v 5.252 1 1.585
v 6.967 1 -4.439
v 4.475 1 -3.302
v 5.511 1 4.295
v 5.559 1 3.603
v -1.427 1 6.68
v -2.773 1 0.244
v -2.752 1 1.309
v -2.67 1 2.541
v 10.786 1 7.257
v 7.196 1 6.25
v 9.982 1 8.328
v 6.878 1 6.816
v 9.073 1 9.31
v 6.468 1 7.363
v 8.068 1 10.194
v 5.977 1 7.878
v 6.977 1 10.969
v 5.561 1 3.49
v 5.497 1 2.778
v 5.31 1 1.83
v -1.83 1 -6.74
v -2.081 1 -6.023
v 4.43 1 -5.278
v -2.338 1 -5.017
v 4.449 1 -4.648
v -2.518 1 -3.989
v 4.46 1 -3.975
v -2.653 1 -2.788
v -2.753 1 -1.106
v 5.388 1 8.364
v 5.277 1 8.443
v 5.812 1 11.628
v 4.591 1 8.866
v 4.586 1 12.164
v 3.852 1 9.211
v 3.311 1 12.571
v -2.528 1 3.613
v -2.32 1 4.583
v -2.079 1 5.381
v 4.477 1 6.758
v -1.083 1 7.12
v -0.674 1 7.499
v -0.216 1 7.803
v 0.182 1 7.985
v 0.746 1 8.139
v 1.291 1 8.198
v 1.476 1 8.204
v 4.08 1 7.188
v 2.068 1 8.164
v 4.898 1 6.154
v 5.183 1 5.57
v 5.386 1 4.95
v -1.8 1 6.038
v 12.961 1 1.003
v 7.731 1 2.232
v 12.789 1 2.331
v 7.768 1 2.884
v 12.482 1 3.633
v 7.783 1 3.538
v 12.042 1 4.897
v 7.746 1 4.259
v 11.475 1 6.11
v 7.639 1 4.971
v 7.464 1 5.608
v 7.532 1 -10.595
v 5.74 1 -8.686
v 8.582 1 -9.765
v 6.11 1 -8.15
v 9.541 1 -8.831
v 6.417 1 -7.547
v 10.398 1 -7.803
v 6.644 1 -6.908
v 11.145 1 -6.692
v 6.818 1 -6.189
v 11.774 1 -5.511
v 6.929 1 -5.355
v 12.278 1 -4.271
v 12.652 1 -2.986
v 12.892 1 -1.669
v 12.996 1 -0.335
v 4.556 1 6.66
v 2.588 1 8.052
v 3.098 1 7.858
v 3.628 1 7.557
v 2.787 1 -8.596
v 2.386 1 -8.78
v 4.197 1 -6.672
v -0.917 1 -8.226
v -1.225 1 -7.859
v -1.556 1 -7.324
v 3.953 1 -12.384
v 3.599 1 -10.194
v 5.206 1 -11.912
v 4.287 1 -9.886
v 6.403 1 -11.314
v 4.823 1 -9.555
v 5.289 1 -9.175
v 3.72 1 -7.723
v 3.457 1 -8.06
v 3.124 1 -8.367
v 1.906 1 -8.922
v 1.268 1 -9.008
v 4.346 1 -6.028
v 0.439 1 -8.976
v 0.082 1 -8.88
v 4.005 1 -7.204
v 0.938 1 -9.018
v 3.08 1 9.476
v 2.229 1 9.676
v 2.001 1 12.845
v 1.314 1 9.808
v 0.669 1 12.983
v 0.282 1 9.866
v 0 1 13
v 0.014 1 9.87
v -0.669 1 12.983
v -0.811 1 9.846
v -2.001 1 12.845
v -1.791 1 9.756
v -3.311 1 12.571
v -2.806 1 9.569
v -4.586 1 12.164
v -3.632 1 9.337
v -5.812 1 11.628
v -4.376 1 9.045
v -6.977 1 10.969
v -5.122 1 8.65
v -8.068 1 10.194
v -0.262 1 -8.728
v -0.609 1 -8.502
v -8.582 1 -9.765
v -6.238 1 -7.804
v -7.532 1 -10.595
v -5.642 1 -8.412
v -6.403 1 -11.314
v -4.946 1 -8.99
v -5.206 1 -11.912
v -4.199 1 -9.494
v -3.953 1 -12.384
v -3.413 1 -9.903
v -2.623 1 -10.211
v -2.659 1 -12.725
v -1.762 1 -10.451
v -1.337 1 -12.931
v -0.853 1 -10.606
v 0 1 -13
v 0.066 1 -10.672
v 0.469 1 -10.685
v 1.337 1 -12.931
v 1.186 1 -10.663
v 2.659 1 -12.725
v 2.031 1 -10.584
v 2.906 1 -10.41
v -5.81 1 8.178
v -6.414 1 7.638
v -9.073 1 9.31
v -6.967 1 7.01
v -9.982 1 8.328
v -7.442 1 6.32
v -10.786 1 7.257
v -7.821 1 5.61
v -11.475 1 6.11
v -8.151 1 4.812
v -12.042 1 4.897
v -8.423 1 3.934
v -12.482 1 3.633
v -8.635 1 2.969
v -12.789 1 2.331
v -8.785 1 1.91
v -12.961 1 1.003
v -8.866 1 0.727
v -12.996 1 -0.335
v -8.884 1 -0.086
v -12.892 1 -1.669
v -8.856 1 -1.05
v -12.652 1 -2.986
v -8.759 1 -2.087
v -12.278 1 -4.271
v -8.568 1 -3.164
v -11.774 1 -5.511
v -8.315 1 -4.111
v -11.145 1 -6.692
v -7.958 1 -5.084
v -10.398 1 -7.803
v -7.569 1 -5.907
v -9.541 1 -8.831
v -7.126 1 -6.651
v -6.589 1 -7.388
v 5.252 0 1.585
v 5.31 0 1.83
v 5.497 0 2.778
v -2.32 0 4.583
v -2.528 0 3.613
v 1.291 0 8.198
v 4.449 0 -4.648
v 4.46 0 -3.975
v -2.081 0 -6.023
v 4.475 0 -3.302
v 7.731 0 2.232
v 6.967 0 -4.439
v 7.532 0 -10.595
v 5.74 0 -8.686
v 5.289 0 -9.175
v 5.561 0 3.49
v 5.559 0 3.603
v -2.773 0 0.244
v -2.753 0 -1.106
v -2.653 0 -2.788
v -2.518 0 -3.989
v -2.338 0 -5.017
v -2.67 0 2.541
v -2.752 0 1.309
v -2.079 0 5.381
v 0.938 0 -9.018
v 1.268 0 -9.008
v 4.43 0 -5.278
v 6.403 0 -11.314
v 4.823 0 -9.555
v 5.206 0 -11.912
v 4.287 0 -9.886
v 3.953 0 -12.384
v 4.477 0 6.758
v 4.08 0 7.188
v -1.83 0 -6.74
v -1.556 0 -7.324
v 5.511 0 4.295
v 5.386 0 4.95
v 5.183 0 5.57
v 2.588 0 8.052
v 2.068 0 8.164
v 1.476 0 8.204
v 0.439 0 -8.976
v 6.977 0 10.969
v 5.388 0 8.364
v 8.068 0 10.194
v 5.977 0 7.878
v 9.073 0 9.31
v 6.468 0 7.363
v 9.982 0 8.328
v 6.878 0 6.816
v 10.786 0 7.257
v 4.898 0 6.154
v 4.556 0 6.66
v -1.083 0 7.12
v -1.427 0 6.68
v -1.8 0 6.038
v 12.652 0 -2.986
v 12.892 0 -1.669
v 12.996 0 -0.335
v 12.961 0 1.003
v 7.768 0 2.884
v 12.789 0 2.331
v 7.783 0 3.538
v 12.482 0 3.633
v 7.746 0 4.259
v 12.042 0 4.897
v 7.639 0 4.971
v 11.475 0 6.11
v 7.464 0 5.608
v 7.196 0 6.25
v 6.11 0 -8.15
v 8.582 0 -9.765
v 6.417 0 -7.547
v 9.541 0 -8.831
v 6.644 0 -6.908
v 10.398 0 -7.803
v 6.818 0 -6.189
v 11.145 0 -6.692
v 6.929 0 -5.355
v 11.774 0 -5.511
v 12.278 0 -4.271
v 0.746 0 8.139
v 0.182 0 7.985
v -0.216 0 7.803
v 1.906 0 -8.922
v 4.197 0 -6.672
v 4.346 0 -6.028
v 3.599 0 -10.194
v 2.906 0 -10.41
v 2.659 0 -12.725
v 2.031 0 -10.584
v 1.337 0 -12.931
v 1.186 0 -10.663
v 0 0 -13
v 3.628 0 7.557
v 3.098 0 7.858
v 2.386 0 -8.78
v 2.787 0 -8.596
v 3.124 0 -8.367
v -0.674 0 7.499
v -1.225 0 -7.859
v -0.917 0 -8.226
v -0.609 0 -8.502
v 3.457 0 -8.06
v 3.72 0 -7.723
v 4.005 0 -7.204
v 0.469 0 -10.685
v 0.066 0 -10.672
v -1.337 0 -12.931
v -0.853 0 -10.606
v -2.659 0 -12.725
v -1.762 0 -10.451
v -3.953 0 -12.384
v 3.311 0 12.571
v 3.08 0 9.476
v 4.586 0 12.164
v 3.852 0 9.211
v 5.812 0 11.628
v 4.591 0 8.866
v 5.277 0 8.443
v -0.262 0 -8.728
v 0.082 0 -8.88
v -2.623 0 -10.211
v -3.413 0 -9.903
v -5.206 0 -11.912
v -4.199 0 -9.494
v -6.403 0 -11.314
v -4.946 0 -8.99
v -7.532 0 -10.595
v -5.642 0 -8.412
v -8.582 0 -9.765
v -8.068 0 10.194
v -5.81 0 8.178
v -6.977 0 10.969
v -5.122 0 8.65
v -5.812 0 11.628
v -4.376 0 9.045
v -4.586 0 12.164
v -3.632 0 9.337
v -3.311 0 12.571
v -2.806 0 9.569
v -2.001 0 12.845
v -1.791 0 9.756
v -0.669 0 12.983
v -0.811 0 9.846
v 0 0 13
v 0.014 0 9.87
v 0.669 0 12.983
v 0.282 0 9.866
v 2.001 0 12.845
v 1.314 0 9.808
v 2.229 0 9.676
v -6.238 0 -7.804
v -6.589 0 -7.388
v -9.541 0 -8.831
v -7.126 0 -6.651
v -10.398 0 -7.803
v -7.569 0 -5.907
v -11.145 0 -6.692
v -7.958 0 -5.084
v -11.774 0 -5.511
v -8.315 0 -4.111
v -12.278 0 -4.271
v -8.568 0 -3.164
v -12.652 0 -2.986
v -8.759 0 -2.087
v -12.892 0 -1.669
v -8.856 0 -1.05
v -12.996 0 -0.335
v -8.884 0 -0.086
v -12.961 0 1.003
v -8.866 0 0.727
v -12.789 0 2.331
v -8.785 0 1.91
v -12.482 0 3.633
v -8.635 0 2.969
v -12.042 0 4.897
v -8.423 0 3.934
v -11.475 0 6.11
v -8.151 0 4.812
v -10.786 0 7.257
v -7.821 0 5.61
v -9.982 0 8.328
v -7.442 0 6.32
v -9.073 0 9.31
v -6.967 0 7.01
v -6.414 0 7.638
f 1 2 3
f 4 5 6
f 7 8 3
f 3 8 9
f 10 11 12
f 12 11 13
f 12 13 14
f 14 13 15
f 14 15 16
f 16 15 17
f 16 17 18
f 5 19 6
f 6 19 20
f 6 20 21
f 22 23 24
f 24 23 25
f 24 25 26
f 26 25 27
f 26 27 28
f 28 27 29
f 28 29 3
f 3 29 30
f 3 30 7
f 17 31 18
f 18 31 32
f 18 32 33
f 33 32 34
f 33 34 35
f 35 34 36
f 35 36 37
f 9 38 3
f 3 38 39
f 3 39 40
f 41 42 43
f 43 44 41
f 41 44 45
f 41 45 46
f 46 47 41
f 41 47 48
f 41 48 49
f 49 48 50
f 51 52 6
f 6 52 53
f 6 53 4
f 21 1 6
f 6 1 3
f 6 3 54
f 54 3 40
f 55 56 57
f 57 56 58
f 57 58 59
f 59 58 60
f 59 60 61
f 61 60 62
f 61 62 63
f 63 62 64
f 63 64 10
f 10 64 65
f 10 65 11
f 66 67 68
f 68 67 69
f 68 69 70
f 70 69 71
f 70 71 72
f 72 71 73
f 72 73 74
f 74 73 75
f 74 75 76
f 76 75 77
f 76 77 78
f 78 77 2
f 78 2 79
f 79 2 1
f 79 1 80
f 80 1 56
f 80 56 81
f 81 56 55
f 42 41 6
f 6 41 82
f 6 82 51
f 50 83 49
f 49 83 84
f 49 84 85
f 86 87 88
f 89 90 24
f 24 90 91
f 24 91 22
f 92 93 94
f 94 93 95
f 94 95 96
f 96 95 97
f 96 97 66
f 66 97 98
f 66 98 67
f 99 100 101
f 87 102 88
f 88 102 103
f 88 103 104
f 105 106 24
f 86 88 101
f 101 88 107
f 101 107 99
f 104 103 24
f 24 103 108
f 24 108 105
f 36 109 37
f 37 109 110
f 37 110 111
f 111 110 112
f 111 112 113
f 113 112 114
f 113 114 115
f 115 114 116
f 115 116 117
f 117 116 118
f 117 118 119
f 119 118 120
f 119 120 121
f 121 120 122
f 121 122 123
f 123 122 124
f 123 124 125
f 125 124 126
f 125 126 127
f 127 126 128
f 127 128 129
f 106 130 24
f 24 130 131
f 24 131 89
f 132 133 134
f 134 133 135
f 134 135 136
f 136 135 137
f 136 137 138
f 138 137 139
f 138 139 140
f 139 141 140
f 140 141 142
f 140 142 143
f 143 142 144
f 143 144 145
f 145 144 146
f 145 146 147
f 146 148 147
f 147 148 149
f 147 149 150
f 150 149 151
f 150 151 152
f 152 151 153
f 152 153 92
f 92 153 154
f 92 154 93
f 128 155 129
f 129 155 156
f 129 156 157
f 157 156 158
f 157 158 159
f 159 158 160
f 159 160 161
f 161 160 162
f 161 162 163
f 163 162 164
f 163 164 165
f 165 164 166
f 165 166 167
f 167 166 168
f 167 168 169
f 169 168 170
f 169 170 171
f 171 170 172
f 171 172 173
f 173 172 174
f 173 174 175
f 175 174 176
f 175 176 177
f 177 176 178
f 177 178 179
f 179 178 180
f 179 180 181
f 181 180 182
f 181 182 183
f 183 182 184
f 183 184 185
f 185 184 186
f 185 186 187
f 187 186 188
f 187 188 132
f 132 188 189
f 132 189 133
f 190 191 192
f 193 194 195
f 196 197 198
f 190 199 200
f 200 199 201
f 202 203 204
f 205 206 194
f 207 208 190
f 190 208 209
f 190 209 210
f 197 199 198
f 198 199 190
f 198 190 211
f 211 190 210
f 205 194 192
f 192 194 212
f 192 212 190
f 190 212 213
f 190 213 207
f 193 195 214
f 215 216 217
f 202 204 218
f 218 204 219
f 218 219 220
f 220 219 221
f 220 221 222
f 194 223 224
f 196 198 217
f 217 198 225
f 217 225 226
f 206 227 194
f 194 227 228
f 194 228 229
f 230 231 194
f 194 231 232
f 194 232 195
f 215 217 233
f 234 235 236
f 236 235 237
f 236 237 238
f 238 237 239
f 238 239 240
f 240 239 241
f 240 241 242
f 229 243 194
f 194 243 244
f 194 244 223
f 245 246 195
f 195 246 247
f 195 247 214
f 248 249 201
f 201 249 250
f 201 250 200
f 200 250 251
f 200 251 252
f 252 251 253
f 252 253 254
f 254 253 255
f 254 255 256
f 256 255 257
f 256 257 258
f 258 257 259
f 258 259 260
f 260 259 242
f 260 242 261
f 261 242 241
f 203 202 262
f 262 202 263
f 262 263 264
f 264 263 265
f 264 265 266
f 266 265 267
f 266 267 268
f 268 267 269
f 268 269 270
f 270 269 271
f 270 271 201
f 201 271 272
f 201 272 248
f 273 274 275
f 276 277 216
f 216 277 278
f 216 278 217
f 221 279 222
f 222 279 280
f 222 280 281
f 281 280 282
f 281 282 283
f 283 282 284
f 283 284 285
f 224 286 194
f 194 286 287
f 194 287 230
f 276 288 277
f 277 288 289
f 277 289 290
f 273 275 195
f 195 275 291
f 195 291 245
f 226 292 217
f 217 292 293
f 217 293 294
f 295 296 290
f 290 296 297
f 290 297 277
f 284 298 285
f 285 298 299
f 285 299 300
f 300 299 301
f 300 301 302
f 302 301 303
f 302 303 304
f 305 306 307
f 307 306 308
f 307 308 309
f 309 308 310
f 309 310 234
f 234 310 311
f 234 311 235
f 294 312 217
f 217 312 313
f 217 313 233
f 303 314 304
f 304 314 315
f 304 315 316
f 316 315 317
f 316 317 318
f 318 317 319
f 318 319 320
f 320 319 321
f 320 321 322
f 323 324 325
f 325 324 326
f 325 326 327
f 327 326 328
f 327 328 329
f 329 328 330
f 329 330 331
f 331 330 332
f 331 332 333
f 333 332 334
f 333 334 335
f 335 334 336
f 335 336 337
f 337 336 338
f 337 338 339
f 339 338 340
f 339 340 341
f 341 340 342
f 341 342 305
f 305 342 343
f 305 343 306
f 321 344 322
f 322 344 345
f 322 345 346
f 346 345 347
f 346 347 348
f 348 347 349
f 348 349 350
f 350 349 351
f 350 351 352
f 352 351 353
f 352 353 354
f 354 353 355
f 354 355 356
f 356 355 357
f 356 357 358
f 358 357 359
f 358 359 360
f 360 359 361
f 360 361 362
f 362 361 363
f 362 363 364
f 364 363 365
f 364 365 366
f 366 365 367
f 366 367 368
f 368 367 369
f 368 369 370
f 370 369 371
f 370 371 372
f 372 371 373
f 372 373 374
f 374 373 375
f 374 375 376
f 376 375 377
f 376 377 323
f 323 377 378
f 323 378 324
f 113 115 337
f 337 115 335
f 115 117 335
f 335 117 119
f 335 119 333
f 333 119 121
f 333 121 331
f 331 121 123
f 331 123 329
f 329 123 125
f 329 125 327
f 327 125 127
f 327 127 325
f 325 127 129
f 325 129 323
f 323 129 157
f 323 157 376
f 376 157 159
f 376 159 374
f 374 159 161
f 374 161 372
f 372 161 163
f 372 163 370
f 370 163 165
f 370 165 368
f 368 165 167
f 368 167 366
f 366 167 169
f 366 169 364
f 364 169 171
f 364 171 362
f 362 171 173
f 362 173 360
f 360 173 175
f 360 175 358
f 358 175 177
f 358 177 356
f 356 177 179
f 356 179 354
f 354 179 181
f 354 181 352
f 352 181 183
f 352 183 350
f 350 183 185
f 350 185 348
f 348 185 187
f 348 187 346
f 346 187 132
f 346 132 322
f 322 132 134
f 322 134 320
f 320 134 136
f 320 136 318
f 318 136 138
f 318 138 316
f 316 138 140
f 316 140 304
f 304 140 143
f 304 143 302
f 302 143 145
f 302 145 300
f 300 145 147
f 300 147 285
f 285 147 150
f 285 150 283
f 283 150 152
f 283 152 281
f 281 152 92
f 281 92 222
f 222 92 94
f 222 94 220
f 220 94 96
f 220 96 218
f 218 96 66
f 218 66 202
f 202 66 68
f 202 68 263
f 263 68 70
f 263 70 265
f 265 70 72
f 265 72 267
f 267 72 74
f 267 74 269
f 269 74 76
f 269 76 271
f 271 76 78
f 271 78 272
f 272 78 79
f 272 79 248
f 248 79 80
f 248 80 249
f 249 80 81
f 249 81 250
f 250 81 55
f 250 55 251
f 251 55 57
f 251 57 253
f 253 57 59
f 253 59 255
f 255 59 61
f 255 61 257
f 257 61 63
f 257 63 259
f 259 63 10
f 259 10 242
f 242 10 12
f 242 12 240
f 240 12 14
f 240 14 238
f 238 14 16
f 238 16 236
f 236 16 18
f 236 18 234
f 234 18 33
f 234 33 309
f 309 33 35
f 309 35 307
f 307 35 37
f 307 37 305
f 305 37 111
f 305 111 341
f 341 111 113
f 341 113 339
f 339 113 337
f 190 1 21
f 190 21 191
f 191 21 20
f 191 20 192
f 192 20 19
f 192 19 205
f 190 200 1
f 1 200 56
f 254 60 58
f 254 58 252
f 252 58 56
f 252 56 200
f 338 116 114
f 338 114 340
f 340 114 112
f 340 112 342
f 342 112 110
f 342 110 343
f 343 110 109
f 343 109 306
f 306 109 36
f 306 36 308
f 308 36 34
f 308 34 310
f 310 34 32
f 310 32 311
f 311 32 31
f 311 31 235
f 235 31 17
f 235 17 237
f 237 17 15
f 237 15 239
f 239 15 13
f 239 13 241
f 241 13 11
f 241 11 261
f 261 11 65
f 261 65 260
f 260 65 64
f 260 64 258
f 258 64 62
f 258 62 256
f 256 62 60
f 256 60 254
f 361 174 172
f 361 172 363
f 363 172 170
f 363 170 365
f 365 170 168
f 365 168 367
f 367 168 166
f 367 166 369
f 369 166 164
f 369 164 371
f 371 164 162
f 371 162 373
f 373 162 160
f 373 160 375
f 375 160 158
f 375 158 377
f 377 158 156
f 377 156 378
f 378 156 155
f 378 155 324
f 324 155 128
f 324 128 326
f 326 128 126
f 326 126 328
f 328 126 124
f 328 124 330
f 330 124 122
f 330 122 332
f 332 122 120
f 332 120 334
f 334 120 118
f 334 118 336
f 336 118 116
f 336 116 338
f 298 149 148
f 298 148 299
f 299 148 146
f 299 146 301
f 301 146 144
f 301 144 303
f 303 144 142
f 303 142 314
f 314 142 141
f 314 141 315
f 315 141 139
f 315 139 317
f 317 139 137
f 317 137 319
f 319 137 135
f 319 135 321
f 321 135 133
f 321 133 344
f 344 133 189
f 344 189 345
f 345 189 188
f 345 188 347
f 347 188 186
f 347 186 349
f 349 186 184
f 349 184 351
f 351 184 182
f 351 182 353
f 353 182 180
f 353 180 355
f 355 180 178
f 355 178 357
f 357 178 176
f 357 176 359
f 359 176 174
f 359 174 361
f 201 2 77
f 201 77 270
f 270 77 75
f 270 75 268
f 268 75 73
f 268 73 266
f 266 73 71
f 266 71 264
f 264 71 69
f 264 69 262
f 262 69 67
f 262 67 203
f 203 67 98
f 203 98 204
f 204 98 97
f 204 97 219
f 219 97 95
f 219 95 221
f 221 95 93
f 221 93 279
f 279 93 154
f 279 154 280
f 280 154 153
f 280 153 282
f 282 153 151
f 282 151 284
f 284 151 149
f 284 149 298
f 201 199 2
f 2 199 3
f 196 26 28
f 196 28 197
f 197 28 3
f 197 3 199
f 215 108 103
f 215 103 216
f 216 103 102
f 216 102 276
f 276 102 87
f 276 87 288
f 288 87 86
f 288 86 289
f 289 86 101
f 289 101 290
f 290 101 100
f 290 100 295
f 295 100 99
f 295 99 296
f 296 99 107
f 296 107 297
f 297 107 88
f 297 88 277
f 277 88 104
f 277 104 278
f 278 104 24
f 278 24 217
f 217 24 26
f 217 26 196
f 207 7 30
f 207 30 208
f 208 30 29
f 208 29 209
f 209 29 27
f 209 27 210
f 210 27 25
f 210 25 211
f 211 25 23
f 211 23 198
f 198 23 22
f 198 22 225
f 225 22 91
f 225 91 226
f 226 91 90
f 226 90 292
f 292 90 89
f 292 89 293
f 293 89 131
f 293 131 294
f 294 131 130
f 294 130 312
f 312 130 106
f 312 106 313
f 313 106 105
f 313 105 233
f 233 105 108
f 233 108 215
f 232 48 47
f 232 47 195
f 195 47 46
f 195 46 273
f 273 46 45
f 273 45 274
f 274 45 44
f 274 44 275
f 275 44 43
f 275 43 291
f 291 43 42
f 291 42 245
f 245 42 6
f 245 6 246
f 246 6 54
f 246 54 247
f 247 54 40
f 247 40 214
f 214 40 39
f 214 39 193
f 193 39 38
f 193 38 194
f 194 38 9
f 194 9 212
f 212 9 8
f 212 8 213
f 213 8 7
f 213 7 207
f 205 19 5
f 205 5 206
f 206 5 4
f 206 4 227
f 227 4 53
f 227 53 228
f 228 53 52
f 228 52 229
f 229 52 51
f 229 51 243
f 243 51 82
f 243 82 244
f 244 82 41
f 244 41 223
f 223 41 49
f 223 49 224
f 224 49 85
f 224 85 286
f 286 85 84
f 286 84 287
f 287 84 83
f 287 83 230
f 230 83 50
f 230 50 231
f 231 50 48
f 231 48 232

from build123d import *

# Parameters (mm, degrees)
SKETCH1_R           = 13
BOSS_EXTRUDE1_DEPTH = 1
CUT_EXTRUDE1_DEPTH  = 1


with BuildPart() as part:
    # Sketch1 → Boss-Extrude1 (new body)
    with BuildSketch(Plane(origin=(0, 0, 0), x_dir=(1, 0, 0), z_dir=(0, 1, 0))):
        with Locations(Location((0, 0, 0), (0, 0, 270))):
            Circle(SKETCH1_R)
    extrude(amount=BOSS_EXTRUDE1_DEPTH)

    # Sketch2 → Cut-Extrude1 (cut)
    with BuildSketch(Plane(origin=(0, 1, 0), x_dir=(1, 0, 0), z_dir=(0, 1, 0))):
        with BuildLine():
            Line((5.25239325, -1.5848325), (7.730691862, -2.231533889))
            add(Edge.make_bspline(
                [(7.730691862, -2.231533889), (7.745854907, -2.465826289), (7.774011213, -2.900884585), (7.780007907, -3.336797312), (7.782775195, -3.5379575)],
                knots=[0, 0, 0, 0, 1.077062099, 2, 2, 2, 2], degree=3))
            add(Edge.make_bspline(
                [(7.782775195, -3.5379575), (7.775734441, -3.772666286), (7.76198387, -4.231051786), (7.665106789, -4.902107863), (7.503534805, -5.53719048), (7.262506376, -6.13254792), (6.970171749, -6.697349561), (6.599918526, -7.220612544), (6.167294917, -7.709069047), (5.673484979, -8.159929958), (5.121589843, -8.561266158), (4.525330961, -8.915315997), (3.88158819, -9.210662332), (3.194771896, -9.454210567), (2.461957382, -9.639228793), (1.685716726, -9.772679799), (0.864809488, -9.857517539), (0.301796476, -9.866054195), (0.013677973, -9.870422778)],
                knots=[0, 0, 0, 0, 0.99838358, 1.9498399, 2.87846334, 3.779167422, 4.676774372, 5.578403417, 6.498521769, 7.448363946, 8.417281084, 9.396931457, 10.393890904, 11.425717394, 12.493153504, 13.605299621, 14.774526564, 16, 16, 16, 16], degree=3))
            add(Edge.make_bspline(
                [(0.013677973, -9.870422778), (-0.345453387, -9.863405493), (-1.042591343, -9.849783693), (-2.054913482, -9.730806098), (-2.997808304, -9.537362324), (-3.874251245, -9.270503592), (-4.678201905, -8.917315993), (-5.411628354, -8.48501399), (-6.080262751, -7.979187866), (-6.671165693, -7.386273411), (-7.201957369, -6.724194549), (-7.653742039, -5.97838427), (-8.036288232, -5.157199578), (-8.347723272, -4.258020447), (-8.589436148, -3.28160554), (-8.760231838, -2.227786178), (-8.865609009, -1.096529571), (-8.877670491, -0.316264728), (-8.883891472, 0.086174444)],
                knots=[0, 0, 0, 0, 1.125976169, 2.185720361, 3.191248848, 4.14129961, 5.053465363, 5.93822711, 6.80577772, 7.675236456, 8.556734678, 9.460955445, 10.40277975, 11.392896532, 12.440517575, 13.553427658, 14.738125192, 16, 16, 16, 16], degree=3))
            add(Edge.make_bspline(
                [(-8.883891472, 0.086174444), (-8.877144448, 0.471355807), (-8.86396985, 1.223481467), (-8.739062258, 2.323761593), (-8.537683843, 3.368297285), (-8.25053484, 4.357501558), (-7.88374945, 5.291207721), (-7.443760547, 6.173716613), (-6.907249974, 6.992501414), (-6.303194776, 7.754037533), (-5.634782916, 8.444869562), (-4.903943631, 9.039841274), (-4.13324793, 9.555570007), (-3.305494781, 9.969042017), (-2.430073405, 10.289949015), (-1.506733392, 10.522051081), (-0.534275431, 10.656589456), (0.130450492, 10.675493327), (0.469407139, 10.685132778)],
                knots=[0, 0, 0, 0, 1.163899941, 2.272693063, 3.342163629, 4.375955692, 5.38130337, 6.37089149, 7.350964679, 8.334427181, 9.30546345, 10.250064938, 11.177916844, 12.10296145, 13.039623816, 13.99100338, 14.975573636, 16, 16, 16, 16], degree=3))
            add(Edge.make_bspline(
                [(0.469407139, 10.685132778), (0.731368093, 10.679403838), (1.24032138, 10.668273314), (1.980031414, 10.603376578), (2.666696134, 10.474000255), (3.305409253, 10.309794879), (3.889173706, 10.08444307), (4.428427211, 9.822804709), (4.914586315, 9.502127233), (5.349181396, 9.133633154), (5.732807037, 8.715102812), (6.062391941, 8.247124839), (6.347469876, 7.733536448), (6.571984508, 7.166341162), (6.748453612, 6.552678606), (6.879804132, 5.890982879), (6.951396325, 5.180354064), (6.961564938, 4.691361745), (6.966802973, 4.439473056)],
                knots=[0, 0, 0, 0, 1.216450272, 2.363391781, 3.442411128, 4.457483076, 5.420551553, 6.342768242, 7.235147886, 8.116718114, 8.981990498, 9.863560726, 10.768467107, 11.70271401, 12.689043052, 13.729727606, 14.830542089, 16, 16, 16, 16], degree=3))
            Line((6.966802973, 4.439473056), (4.475483528, 3.302320278))
            add(Edge.make_bspline(
                [(4.475483528, 3.302320278), (4.470106952, 3.438293944), (4.45992788, 3.695722764), (4.461276647, 4.056170034), (4.447142903, 4.368506474), (4.448715354, 4.55954313), (4.449441862, 4.647806389)],
                knots=[0, 0, 0, 0, 1.21319996, 2.296861169, 3.213111309, 4, 4, 4, 4], degree=3))
            add(Edge.make_bspline(
                [(4.449441862, 4.647806389), (4.447722623, 4.824448026), (4.444391201, 5.166731988), (4.396660933, 5.661731695), (4.337462463, 6.125936258), (4.234766253, 6.552649254), (4.115177918, 6.949061221), (3.964373313, 7.308698933), (3.783801492, 7.63357582), (3.580758496, 7.927608424), (3.344642243, 8.184947546), (3.080877209, 8.407247168), (2.794090455, 8.602656301), (2.472644536, 8.751215907), (2.129602996, 8.876345015), (1.755447324, 8.955010862), (1.356440833, 9.009630083), (1.080143634, 9.015466719), (0.938157139, 9.018466111)],
                knots=[0, 0, 0, 0, 1.322247294, 2.562159472, 3.722092324, 4.823306397, 5.844541812, 6.820517713, 7.73713301, 8.62386865, 9.490450857, 10.343654022, 11.203094787, 12.080246692, 12.988369862, 13.932056947, 14.937303798, 16, 16, 16, 16], degree=3))
            add(Edge.make_bspline(
                [(0.938157139, 9.018466111), (0.786942196, 9.012673682), (0.491913679, 9.001372339), (0.064405318, 8.885963451), (-0.332873883, 8.703985183), (-0.69991465, 8.444701136), (-1.036329743, 8.114914494), (-1.33955244, 7.710706144), (-1.612917553, 7.235906282), (-1.860109833, 6.690970947), (-2.074074797, 6.070923113), (-2.264395958, 5.381001791), (-2.423002996, 4.619720467), (-2.553018757, 3.7867718), (-2.649338988, 2.881263355), (-2.723635136, 1.902892729), (-2.766722621, 0.853348432), (-2.770719009, 0.129616858), (-2.772780361, -0.243686667)],
                knots=[0, 0, 0, 0, 0.663754609, 1.295021072, 1.932796925, 2.5771421, 3.261147111, 3.996780335, 4.792416042, 5.666644777, 6.624635675, 7.674451774, 8.812674813, 10.04299616, 11.380987675, 12.816846398, 14.358117152, 16, 16, 16, 16], degree=3))
            add(Edge.make_bspline(
                [(-2.772780361, -0.243686667), (-2.769234908, -0.564921798), (-2.762363487, -1.187505667), (-2.715752199, -2.089773852), (-2.634330422, -2.929957842), (-2.518780135, -3.708339901), (-2.367195765, -4.425682347), (-2.18616641, -5.08138104), (-1.977536957, -5.676945191), (-1.721955983, -6.20495828), (-1.442920917, -6.676002474), (-1.128010362, -7.08687999), (-0.775787049, -7.432245929), (-0.387635905, -7.711578053), (0.02746432, -7.94149635), (0.483873953, -8.086328054), (0.968240334, -8.189856946), (1.303586281, -8.199030191), (1.476351584, -8.203756111)],
                knots=[0, 0, 0, 0, 1.528653098, 2.962673341, 4.297845131, 5.544148307, 6.705400685, 7.784456391, 8.779695543, 9.703504234, 10.571332445, 11.381068858, 12.160045423, 12.90918257, 13.651518771, 14.406987965, 15.179303616, 16, 16, 16, 16], degree=3))
            add(Edge.make_bspline(
                [(1.476351584, -8.203756111), (1.61974551, -8.199179957), (1.902048757, -8.190170766), (2.316640973, -8.13115633), (2.709880212, -8.019466978), (3.085346323, -7.871676439), (3.444251194, -7.683979914), (3.784176044, -7.453188362), (4.102744826, -7.17621313), (4.399160241, -6.860901751), (4.671310822, -6.515633609), (4.911973057, -6.146309401), (5.111323132, -5.752451865), (5.277229417, -5.340485015), (5.402928553, -4.906821297), (5.493239479, -4.453833285), (5.552273744, -3.979325579), (5.557758131, -3.655325036), (5.560552973, -3.490214444)],
                knots=[0, 0, 0, 0, 0.988561849, 1.946206698, 2.877739568, 3.799990945, 4.723373952, 5.6638324, 6.625467346, 7.627221263, 8.642730559, 9.652395785, 10.660385053, 11.680779451, 12.709570302, 13.767670509, 14.862405475, 16, 16, 16, 16], degree=3))
            add(Edge.make_bspline(
                [(5.560552973, -3.490214444), (5.557098155, -3.369930029), (5.549404006, -3.102047251), (5.479283066, -2.663994986), (5.38676253, -2.147904033), (5.299251417, -1.781190622), (5.25239325, -1.5848325)],
                knots=[0, 0, 0, 0, 0.745982987, 1.661362321, 2.747767356, 4, 4, 4, 4], degree=3))
        make_face()
    extrude(amount=-CUT_EXTRUDE1_DEPTH, mode=Mode.SUBTRACT)


solid = part.part
